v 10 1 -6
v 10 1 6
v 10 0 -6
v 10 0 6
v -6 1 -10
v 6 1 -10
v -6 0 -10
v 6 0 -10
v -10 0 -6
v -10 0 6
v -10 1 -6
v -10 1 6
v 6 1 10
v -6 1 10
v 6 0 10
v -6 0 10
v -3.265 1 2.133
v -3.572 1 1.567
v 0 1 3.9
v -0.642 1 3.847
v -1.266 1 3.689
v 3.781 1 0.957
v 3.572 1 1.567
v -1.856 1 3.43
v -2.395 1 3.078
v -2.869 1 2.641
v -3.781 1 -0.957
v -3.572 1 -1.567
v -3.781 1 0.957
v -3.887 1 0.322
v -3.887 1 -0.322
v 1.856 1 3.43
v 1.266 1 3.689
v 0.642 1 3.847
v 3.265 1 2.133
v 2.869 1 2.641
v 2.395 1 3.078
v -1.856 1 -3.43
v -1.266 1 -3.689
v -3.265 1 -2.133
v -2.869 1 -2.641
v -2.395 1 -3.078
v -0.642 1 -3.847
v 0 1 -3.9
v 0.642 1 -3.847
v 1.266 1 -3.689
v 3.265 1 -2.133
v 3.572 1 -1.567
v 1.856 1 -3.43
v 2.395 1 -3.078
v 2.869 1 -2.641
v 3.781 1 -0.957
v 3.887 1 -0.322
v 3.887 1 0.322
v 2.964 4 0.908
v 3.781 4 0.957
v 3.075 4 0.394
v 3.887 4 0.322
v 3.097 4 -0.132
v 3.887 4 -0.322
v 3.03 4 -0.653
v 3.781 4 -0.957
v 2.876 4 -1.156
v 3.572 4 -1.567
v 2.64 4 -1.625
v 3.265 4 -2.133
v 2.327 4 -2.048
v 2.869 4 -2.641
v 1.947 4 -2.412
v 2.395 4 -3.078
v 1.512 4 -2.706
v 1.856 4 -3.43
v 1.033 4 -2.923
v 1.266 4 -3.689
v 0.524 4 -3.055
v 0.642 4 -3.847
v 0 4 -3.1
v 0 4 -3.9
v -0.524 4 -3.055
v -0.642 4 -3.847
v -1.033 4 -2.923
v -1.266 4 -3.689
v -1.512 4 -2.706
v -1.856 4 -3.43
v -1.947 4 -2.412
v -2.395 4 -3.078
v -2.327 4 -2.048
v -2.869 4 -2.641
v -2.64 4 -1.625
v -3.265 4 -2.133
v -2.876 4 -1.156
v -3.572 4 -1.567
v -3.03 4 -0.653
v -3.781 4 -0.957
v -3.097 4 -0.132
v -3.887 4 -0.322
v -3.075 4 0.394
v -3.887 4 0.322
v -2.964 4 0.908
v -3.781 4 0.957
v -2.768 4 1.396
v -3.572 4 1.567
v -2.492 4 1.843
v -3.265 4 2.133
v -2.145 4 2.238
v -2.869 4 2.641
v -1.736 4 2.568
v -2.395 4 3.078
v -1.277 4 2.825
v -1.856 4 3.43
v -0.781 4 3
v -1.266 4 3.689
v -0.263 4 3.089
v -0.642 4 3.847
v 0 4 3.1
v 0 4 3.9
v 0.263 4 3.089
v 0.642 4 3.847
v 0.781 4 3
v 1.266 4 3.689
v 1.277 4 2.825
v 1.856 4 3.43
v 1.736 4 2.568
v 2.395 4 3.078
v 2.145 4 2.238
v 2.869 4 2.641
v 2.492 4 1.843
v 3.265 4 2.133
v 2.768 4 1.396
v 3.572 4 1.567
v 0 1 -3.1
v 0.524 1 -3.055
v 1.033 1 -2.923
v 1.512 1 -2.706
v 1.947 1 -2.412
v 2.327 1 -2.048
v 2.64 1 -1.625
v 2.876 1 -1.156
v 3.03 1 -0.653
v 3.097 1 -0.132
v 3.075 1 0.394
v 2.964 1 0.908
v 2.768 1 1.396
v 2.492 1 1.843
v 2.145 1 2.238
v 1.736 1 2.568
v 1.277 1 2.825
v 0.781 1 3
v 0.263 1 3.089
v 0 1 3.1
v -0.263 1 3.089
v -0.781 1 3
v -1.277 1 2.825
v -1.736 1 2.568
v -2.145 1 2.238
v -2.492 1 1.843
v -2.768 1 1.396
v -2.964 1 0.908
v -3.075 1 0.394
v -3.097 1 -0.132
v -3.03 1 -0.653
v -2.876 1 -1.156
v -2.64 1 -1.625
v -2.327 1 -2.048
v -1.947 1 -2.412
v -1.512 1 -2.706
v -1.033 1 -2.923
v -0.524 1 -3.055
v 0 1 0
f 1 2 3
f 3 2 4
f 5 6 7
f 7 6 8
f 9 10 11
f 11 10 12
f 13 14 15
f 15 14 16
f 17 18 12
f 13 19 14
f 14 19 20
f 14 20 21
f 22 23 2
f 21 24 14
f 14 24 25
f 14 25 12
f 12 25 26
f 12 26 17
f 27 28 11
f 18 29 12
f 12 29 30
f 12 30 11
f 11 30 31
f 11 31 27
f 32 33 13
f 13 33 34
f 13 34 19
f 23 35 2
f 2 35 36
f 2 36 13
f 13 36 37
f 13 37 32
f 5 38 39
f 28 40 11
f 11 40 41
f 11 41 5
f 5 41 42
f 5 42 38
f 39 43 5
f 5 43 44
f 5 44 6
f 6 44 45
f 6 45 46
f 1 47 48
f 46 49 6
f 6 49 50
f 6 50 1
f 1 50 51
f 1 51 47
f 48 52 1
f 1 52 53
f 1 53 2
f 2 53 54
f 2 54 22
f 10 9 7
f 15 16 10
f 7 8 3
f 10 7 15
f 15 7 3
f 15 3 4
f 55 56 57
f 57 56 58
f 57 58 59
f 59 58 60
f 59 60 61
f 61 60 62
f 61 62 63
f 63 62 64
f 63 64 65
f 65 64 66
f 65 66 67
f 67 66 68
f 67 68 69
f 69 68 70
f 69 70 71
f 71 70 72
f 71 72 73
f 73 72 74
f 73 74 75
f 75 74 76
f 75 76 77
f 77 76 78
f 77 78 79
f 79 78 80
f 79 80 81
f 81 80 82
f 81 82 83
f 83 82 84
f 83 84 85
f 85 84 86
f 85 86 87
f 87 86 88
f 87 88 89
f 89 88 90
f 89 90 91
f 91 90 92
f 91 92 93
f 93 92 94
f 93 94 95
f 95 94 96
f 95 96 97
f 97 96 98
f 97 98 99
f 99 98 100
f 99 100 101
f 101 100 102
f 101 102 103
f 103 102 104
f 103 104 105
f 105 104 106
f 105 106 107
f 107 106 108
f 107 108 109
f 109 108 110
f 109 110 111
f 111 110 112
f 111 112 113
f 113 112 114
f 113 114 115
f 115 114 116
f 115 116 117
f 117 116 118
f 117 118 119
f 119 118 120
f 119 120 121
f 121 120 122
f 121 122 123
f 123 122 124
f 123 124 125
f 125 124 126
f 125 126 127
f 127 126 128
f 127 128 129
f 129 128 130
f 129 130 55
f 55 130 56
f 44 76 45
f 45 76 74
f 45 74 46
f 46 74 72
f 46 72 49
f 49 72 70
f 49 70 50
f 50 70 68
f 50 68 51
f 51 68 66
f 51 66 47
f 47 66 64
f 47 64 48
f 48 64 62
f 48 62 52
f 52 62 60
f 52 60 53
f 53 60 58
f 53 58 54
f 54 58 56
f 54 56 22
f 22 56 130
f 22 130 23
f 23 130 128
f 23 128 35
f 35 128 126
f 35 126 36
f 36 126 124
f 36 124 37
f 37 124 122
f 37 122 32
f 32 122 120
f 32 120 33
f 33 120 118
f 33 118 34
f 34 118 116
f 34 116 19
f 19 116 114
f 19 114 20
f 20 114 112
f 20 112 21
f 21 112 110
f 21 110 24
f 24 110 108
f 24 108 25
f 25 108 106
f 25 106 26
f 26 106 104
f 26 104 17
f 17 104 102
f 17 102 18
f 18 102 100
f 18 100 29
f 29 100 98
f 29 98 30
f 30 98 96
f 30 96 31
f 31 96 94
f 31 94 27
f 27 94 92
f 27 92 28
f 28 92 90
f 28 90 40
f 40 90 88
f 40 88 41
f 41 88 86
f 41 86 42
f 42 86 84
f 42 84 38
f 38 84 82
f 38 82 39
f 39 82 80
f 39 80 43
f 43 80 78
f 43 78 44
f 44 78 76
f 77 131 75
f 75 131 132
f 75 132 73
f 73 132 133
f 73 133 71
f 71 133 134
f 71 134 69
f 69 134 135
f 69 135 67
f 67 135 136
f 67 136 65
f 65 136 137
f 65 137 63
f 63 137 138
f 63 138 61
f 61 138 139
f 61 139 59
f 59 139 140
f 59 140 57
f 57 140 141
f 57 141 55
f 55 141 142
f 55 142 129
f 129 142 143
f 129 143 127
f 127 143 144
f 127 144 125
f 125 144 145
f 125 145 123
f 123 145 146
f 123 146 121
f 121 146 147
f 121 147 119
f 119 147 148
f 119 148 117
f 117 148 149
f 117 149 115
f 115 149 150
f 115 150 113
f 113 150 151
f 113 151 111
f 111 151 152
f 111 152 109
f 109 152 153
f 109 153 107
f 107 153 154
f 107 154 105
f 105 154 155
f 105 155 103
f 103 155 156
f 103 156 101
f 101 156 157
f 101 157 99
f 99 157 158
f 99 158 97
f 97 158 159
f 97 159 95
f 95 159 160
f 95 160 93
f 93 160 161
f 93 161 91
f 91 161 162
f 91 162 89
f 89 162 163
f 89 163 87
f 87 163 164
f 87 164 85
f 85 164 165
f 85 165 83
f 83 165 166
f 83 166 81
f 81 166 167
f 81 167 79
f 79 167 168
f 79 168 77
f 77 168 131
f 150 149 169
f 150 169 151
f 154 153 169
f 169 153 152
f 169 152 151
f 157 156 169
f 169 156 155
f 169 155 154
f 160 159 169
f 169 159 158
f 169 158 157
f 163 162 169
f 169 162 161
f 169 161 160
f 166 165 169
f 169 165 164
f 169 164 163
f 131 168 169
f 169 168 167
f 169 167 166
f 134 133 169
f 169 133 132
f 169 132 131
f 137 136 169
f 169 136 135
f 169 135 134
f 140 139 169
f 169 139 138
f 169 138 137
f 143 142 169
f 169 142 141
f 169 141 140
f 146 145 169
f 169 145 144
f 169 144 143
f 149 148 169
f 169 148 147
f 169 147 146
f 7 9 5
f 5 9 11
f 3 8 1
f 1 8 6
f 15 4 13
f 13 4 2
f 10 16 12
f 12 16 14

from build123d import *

# Parameters (mm, degrees)
SKIZZE1_W                       = 20
SKIZZE1_H                       = 20
AUFSATZ_LINEAR_AUSTRAGEN1_DEPTH = 1
SKIZZE2_R                       = 3.9
SKIZZE2_R_2                     = 3.1
AUFSATZ_LINEAR_AUSTRAGEN2_DEPTH = 3
FASE1_SIZE                      = 4


with BuildPart() as part:
    # Skizze1 → Aufsatz-Linear austragen1 (new body)
    with BuildSketch(Plane(origin=(0, 0, 0), x_dir=(1, 0, 0), z_dir=(0, 1, 0))):
        Rectangle(SKIZZE1_W, SKIZZE1_H)
    extrude(amount=AUFSATZ_LINEAR_AUSTRAGEN1_DEPTH)

    # Skizze2 → Aufsatz-Linear austragen2 (add)
    with BuildSketch(Plane(origin=(0, 1, 0), x_dir=(1, 0, 0), z_dir=(0, 1, 0))):
        with Locations(Location((0, 0, 0), (0, 0, 90))):
            Circle(SKIZZE2_R)
        with Locations(Location((0, 0, 0), (0, 0, 270))):
            Circle(SKIZZE2_R_2, mode=Mode.SUBTRACT)
    extrude(amount=AUFSATZ_LINEAR_AUSTRAGEN2_DEPTH)

    # Fase1
    fase1_edges = [part.edges().sort_by_distance(p)[0] for p in [
        (10, 0.5, 10),
        (-10, 0.5, 10),
        (-10, 0.5, -10),
        (10, 0.5, -10),
    ]]
    chamfer(fase1_edges, length=FASE1_SIZE)


solid = part.part
